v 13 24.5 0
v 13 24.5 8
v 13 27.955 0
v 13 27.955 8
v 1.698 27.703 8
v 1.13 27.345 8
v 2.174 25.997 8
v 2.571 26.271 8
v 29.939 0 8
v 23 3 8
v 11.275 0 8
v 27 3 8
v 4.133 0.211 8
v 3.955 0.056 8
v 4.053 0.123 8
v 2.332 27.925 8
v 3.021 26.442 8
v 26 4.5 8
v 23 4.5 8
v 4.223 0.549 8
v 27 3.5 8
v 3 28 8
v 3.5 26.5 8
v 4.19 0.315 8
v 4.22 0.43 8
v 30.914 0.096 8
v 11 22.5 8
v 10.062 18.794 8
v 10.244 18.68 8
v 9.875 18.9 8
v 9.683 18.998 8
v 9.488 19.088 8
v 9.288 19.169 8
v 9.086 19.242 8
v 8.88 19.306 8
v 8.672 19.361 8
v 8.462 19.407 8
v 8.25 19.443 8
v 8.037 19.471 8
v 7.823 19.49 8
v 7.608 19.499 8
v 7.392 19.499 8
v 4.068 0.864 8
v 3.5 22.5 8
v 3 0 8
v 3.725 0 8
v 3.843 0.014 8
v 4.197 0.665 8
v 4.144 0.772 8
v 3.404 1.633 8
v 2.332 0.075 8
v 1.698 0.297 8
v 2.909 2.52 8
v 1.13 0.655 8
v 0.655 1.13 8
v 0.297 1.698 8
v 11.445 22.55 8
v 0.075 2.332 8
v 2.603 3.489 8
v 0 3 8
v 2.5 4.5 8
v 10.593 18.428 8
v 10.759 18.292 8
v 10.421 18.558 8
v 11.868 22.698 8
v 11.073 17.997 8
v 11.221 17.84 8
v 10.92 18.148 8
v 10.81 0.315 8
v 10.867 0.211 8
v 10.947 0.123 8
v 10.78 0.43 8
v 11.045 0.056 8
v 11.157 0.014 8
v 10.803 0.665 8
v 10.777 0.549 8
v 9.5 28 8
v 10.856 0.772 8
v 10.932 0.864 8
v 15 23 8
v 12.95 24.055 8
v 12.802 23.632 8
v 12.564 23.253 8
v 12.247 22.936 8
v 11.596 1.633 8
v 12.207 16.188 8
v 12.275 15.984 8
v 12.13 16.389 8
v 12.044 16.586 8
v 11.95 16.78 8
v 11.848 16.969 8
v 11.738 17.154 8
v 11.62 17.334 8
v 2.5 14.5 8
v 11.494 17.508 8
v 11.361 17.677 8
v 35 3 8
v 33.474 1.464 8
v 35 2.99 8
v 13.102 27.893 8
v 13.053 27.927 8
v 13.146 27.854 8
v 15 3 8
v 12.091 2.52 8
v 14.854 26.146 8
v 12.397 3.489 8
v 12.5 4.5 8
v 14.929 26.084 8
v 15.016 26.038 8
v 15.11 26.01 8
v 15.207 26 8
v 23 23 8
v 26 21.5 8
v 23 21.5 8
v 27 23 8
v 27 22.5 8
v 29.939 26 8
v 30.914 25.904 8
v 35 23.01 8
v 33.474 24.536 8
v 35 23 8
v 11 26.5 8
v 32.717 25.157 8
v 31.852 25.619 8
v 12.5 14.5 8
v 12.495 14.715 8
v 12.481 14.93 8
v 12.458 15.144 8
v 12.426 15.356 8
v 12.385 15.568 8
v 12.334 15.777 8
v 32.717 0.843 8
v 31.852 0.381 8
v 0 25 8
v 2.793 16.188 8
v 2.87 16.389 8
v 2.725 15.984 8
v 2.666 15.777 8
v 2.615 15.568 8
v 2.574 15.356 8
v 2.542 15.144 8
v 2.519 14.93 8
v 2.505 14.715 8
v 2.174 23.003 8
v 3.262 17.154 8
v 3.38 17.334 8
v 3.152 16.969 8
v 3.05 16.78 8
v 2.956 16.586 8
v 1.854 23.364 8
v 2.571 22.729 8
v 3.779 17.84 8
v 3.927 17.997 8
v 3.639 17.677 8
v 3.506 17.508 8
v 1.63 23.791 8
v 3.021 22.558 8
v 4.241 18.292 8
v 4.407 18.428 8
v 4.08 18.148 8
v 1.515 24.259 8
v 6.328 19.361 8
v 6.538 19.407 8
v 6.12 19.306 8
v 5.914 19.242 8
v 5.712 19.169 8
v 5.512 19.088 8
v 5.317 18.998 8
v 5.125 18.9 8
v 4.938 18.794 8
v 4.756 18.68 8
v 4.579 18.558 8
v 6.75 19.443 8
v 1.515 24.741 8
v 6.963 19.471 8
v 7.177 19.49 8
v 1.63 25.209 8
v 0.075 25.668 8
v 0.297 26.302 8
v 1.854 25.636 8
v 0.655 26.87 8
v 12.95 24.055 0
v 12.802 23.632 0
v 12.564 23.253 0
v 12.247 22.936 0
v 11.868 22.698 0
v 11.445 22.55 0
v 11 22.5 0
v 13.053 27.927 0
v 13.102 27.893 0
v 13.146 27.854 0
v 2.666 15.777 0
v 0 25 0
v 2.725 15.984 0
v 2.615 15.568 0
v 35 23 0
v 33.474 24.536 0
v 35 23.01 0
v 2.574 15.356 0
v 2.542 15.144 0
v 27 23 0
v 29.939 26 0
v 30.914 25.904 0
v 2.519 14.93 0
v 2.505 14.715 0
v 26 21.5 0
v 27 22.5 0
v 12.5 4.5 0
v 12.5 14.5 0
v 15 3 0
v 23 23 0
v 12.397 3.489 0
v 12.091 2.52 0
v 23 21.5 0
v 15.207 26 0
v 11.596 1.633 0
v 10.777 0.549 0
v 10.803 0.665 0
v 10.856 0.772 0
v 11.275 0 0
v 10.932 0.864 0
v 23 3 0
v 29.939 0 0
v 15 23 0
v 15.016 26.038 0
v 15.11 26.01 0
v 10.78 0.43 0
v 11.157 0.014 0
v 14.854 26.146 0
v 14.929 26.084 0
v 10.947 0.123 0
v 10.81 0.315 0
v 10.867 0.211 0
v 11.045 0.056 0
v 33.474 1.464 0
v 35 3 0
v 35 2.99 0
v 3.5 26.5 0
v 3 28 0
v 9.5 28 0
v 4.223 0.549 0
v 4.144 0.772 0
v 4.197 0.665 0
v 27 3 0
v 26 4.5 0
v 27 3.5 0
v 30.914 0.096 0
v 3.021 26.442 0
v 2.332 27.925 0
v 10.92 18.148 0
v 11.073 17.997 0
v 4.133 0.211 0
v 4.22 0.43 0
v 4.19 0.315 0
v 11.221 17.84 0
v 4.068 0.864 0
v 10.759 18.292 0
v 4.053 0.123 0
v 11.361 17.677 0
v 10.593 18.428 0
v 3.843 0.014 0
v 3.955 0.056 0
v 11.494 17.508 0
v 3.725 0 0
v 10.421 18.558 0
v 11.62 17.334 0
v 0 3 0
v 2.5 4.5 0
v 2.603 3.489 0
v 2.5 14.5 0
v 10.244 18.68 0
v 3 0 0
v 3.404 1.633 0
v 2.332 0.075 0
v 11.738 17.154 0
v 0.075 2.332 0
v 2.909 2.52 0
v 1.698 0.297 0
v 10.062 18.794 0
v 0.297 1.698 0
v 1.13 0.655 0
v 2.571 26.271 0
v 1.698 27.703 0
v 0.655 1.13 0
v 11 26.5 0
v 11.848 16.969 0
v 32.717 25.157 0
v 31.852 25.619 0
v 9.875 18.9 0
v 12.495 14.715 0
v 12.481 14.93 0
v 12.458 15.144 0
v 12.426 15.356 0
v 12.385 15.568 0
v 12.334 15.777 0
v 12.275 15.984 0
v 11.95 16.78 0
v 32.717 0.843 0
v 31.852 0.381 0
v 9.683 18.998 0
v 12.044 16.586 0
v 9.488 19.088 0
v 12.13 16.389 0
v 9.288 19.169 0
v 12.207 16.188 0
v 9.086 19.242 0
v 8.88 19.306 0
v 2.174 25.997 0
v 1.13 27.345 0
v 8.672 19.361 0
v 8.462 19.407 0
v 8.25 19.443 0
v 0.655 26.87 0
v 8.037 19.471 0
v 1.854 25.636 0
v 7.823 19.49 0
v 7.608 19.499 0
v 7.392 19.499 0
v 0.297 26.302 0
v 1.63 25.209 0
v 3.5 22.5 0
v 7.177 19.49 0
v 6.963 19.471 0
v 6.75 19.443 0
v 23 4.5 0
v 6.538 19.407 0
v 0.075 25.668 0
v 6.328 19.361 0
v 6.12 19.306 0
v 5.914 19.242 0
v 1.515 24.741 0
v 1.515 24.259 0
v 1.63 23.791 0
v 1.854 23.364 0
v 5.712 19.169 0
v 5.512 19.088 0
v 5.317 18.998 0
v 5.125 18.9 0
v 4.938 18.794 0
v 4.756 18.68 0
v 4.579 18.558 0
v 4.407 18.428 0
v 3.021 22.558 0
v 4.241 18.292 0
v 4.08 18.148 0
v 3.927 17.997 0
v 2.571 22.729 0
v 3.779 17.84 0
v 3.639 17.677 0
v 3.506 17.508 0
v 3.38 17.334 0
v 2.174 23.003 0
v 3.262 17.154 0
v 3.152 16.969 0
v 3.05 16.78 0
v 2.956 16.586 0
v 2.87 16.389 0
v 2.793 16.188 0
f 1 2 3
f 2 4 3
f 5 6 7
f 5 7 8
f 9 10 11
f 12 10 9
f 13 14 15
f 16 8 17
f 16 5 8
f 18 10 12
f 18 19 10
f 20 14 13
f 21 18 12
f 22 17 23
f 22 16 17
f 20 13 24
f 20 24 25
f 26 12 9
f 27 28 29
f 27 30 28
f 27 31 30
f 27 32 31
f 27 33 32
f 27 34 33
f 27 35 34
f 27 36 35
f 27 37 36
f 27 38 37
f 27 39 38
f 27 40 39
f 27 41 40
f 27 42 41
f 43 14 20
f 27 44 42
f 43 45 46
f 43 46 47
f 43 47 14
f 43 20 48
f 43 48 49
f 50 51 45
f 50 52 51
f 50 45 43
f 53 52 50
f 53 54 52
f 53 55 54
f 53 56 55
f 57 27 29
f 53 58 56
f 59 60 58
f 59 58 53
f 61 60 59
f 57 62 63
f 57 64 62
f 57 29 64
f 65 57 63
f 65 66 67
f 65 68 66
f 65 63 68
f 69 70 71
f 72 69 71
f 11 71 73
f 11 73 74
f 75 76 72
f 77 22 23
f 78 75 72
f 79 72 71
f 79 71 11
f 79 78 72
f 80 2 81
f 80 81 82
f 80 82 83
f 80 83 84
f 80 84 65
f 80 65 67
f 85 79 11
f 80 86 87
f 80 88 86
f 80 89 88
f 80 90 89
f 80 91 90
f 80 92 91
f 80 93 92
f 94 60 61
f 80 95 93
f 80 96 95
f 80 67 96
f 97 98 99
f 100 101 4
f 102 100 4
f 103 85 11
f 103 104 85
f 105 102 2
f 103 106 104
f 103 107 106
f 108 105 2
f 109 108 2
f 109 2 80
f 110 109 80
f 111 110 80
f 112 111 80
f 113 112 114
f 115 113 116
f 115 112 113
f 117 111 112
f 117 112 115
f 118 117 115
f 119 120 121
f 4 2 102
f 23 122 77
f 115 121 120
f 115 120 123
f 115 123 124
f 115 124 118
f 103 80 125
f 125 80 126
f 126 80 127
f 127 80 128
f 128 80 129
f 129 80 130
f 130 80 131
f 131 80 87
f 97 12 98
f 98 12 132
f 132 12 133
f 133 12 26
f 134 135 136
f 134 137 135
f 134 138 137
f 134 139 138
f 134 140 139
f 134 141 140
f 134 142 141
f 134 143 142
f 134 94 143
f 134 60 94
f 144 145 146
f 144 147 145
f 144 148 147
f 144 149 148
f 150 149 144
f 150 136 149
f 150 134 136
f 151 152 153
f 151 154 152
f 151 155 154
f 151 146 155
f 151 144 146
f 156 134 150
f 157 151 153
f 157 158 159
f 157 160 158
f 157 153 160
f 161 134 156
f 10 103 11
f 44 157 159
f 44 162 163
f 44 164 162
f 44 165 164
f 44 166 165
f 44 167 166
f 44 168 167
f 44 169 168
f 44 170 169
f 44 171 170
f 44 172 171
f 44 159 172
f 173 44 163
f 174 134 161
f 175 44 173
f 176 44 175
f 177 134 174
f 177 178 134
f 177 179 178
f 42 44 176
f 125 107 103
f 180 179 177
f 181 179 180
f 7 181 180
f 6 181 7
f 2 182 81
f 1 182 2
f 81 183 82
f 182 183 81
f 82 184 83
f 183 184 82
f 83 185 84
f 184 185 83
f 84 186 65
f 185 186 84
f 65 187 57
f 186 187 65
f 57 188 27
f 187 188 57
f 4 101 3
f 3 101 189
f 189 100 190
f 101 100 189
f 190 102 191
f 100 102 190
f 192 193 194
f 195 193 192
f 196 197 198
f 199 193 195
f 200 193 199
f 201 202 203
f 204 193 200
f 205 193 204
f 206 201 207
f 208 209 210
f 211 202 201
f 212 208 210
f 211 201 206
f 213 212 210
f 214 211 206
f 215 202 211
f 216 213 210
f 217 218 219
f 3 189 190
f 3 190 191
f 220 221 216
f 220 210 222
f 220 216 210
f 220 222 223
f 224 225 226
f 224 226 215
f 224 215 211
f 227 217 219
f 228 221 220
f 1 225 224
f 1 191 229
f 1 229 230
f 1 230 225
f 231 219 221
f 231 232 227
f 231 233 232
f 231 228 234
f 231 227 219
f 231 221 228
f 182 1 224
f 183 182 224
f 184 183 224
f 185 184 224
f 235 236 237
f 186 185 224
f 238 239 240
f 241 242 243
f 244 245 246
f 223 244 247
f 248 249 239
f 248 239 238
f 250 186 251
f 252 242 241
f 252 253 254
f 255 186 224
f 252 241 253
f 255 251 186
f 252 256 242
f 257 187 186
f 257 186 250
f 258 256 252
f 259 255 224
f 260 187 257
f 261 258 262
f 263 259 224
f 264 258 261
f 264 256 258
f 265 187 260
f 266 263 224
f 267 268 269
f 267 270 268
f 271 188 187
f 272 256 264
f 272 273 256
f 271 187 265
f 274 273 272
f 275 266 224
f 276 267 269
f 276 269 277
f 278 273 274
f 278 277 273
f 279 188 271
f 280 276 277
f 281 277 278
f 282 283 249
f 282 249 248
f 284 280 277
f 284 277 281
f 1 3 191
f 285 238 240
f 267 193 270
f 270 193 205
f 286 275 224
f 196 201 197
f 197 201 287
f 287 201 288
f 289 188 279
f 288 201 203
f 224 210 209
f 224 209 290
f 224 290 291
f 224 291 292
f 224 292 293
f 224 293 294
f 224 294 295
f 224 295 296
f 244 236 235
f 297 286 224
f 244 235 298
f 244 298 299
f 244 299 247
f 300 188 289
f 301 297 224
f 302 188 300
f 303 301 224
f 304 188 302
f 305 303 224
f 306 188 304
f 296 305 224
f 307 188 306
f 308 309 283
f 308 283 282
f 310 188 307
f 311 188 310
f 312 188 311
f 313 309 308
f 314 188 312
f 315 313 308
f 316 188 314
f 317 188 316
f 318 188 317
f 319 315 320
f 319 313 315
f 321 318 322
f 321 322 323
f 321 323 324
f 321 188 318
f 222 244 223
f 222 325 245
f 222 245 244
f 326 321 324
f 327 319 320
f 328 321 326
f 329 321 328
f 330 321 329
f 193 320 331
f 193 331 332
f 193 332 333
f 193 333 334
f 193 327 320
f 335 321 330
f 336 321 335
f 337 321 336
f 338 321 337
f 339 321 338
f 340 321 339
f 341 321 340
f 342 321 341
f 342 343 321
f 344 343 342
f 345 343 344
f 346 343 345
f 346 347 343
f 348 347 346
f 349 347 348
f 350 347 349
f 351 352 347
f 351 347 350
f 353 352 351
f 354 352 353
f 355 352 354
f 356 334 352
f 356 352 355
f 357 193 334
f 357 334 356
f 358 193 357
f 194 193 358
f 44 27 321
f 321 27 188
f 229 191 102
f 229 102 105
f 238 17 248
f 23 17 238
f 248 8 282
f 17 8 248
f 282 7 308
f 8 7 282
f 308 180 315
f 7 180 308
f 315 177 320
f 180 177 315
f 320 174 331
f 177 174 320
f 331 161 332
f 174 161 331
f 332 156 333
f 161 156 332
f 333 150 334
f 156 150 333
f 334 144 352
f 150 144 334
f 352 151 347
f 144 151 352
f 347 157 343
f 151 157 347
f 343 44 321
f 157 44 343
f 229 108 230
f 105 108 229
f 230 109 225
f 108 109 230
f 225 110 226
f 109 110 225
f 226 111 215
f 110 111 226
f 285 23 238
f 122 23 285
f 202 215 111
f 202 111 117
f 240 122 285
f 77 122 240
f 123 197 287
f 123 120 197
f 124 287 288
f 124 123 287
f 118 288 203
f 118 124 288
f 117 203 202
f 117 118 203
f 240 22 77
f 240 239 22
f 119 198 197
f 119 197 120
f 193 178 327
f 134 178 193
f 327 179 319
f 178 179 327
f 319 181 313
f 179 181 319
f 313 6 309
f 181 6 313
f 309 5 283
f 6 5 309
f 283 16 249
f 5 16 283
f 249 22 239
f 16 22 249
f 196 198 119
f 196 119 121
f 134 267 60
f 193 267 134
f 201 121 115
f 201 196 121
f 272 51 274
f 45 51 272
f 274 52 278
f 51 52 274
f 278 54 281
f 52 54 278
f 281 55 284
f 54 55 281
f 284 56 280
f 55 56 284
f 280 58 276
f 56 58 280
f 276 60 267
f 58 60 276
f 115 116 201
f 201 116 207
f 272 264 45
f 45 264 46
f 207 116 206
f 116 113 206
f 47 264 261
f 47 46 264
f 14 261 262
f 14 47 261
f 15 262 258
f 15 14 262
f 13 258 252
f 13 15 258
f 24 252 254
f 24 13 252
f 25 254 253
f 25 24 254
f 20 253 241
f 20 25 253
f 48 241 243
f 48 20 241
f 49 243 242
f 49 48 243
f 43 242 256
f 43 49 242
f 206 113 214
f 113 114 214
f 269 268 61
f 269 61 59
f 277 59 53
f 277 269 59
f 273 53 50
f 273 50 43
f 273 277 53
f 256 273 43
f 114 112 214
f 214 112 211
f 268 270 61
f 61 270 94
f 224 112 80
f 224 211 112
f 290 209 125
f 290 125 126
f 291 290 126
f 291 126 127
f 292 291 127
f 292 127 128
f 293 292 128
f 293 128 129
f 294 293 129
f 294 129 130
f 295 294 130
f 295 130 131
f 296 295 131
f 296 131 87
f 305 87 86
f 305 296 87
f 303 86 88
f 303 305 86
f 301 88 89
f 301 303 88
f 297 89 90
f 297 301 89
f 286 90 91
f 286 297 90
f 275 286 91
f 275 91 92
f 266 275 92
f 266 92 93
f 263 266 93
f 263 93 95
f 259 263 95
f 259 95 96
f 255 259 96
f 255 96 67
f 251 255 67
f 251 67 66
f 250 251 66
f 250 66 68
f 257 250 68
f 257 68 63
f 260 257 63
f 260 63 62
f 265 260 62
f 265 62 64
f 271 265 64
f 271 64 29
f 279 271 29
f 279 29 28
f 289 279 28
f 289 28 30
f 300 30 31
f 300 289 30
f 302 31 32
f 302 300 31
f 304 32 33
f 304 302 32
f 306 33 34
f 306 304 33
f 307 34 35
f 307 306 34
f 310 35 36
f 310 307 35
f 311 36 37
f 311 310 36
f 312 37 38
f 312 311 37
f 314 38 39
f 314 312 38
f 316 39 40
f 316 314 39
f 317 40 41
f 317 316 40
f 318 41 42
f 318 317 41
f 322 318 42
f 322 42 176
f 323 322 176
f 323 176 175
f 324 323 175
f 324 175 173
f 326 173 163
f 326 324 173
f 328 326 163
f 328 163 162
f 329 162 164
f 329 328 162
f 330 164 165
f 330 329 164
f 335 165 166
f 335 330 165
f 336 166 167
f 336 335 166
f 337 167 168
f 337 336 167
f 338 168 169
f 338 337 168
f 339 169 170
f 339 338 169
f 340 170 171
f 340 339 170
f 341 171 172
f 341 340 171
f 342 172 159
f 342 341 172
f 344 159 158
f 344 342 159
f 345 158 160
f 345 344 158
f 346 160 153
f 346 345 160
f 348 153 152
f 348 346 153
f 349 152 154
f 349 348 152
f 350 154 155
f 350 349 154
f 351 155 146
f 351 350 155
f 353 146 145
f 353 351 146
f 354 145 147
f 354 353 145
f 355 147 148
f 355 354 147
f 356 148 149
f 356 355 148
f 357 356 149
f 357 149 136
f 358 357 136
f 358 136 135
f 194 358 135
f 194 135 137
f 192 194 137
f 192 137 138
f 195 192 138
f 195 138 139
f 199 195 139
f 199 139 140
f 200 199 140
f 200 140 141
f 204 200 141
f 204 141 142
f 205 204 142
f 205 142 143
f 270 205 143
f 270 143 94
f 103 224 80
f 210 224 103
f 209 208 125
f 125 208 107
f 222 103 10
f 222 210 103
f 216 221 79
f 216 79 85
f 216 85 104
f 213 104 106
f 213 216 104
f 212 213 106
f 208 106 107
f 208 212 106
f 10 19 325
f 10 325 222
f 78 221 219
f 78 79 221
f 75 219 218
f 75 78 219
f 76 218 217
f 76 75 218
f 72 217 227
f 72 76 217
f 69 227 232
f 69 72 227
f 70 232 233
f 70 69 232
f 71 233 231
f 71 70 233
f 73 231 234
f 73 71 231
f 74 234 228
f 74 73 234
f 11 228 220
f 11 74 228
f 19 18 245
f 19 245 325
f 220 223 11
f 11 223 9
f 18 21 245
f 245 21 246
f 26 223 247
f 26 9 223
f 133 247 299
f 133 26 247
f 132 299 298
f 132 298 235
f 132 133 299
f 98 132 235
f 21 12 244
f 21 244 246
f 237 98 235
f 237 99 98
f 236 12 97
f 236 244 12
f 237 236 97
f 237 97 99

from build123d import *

# Parameters (mm, degrees)
PAD_DEPTH    = 8
PAD001_DEPTH = 8
FILLET_R     = 3
FILLET001_R  = 0.5
CHAMFER_SIZE = 2.99
FILLET002_R  = 5
POCKET_DEPTH = 8.001
FILLET003_R  = 2


with BuildPart() as part:
    # Sketch → Pad (new body)
    with BuildSketch(Plane.XY):
        with BuildLine():
            Line((0, 0), (0, 28))
            Line((0, 28), (13, 28))
            Line((13, 28), (15, 26))
            Line((15, 26), (35, 26))
            Line((35, 26), (35, 23))
            Line((35, 23), (15, 23))
            Line((15, 23), (15, 3))
            Line((15, 3), (35, 3))
            Line((35, 3), (35, 0))
            Line((9.679449, 0), (35, 0))
            ThreePointArc((9.679449, 0), (11.736582, 1.844557), (12.5, 4.5))
            Line((12.5, 14.5), (12.5, 4.5))
            ThreePointArc((12.5, 14.5), (7.5, 19.5), (2.5, 14.5))
            Line((2.5, 4.5), (2.5, 14.5))
            ThreePointArc((2.5, 4.5), (3.263418, 1.844557), (5.320551, 0))
            Line((0, 0), (5.320551, 0))
        make_face()
    extrude(amount=PAD_DEPTH)

    # Sketch001 (on Face18 of Pad) → Pad001 (join)
    with BuildSketch(Plane.XY.offset(8)):
        Polygon((23, 23), (27, 23), (27, 22.5), (26, 21.5), (23, 21.5), align=None)
        Polygon((23, 3), (27, 3), (27, 3.5), (26, 4.5), (23, 4.5), align=None)
    extrude(amount=-PAD001_DEPTH)

    # Fillet
    fillet_edges = [part.edges().sort_by_distance(p)[0] for p in [
        (0, 0, 4),
        (0, 28, 4),
    ]]
    fillet(fillet_edges, radius=FILLET_R)

    # Fillet001
    fillet001_edges = [part.edges().sort_by_distance(p)[0] for p in [
        (15, 26, 4),
        (13, 28, 4),
        (5.320551, 0, 4),
        (9.679449, 0, 4),
    ]]
    fillet(fillet001_edges, radius=FILLET001_R)

    # Chamfer
    chamfer_edges = [part.edges().sort_by_distance(p)[0] for p in [
        (35, 26, 4),
        (35, 0, 4),
    ]]
    chamfer(chamfer_edges, length=CHAMFER_SIZE)

    # Fillet002
    fillet002_edges = [part.edges().sort_by_distance(p)[0] for p in [
        (32.01, 26, 4),
        (32.01, 0, 4),
    ]]
    fillet(fillet002_edges, radius=FILLET002_R)

    # Sketch002 (on Face32 of Fillet002) → Pocket (cut, through all)
    with BuildSketch(Plane.XY.offset(8)):
        with BuildLine():
            Line((9.5, 28), (11, 26.5))
            Line((11, 26.5), (3.5, 26.5))
            ThreePointArc((3.5, 26.5), (1.5, 24.5), (3.5, 22.5))
            Line((3.5, 22.5), (13, 22.5))
            Line((13, 22.5), (13, 28))
            Line((9.5, 28), (13, 28))
        make_face()
    extrude(amount=-POCKET_DEPTH, mode=Mode.SUBTRACT)

    # Fillet003
    fillet003_edges = [part.edges().sort_by_distance(p)[0] for p in [
        (13, 22.5, 4),
    ]]
    fillet(fillet003_edges, radius=FILLET003_R)


solid = part.part
